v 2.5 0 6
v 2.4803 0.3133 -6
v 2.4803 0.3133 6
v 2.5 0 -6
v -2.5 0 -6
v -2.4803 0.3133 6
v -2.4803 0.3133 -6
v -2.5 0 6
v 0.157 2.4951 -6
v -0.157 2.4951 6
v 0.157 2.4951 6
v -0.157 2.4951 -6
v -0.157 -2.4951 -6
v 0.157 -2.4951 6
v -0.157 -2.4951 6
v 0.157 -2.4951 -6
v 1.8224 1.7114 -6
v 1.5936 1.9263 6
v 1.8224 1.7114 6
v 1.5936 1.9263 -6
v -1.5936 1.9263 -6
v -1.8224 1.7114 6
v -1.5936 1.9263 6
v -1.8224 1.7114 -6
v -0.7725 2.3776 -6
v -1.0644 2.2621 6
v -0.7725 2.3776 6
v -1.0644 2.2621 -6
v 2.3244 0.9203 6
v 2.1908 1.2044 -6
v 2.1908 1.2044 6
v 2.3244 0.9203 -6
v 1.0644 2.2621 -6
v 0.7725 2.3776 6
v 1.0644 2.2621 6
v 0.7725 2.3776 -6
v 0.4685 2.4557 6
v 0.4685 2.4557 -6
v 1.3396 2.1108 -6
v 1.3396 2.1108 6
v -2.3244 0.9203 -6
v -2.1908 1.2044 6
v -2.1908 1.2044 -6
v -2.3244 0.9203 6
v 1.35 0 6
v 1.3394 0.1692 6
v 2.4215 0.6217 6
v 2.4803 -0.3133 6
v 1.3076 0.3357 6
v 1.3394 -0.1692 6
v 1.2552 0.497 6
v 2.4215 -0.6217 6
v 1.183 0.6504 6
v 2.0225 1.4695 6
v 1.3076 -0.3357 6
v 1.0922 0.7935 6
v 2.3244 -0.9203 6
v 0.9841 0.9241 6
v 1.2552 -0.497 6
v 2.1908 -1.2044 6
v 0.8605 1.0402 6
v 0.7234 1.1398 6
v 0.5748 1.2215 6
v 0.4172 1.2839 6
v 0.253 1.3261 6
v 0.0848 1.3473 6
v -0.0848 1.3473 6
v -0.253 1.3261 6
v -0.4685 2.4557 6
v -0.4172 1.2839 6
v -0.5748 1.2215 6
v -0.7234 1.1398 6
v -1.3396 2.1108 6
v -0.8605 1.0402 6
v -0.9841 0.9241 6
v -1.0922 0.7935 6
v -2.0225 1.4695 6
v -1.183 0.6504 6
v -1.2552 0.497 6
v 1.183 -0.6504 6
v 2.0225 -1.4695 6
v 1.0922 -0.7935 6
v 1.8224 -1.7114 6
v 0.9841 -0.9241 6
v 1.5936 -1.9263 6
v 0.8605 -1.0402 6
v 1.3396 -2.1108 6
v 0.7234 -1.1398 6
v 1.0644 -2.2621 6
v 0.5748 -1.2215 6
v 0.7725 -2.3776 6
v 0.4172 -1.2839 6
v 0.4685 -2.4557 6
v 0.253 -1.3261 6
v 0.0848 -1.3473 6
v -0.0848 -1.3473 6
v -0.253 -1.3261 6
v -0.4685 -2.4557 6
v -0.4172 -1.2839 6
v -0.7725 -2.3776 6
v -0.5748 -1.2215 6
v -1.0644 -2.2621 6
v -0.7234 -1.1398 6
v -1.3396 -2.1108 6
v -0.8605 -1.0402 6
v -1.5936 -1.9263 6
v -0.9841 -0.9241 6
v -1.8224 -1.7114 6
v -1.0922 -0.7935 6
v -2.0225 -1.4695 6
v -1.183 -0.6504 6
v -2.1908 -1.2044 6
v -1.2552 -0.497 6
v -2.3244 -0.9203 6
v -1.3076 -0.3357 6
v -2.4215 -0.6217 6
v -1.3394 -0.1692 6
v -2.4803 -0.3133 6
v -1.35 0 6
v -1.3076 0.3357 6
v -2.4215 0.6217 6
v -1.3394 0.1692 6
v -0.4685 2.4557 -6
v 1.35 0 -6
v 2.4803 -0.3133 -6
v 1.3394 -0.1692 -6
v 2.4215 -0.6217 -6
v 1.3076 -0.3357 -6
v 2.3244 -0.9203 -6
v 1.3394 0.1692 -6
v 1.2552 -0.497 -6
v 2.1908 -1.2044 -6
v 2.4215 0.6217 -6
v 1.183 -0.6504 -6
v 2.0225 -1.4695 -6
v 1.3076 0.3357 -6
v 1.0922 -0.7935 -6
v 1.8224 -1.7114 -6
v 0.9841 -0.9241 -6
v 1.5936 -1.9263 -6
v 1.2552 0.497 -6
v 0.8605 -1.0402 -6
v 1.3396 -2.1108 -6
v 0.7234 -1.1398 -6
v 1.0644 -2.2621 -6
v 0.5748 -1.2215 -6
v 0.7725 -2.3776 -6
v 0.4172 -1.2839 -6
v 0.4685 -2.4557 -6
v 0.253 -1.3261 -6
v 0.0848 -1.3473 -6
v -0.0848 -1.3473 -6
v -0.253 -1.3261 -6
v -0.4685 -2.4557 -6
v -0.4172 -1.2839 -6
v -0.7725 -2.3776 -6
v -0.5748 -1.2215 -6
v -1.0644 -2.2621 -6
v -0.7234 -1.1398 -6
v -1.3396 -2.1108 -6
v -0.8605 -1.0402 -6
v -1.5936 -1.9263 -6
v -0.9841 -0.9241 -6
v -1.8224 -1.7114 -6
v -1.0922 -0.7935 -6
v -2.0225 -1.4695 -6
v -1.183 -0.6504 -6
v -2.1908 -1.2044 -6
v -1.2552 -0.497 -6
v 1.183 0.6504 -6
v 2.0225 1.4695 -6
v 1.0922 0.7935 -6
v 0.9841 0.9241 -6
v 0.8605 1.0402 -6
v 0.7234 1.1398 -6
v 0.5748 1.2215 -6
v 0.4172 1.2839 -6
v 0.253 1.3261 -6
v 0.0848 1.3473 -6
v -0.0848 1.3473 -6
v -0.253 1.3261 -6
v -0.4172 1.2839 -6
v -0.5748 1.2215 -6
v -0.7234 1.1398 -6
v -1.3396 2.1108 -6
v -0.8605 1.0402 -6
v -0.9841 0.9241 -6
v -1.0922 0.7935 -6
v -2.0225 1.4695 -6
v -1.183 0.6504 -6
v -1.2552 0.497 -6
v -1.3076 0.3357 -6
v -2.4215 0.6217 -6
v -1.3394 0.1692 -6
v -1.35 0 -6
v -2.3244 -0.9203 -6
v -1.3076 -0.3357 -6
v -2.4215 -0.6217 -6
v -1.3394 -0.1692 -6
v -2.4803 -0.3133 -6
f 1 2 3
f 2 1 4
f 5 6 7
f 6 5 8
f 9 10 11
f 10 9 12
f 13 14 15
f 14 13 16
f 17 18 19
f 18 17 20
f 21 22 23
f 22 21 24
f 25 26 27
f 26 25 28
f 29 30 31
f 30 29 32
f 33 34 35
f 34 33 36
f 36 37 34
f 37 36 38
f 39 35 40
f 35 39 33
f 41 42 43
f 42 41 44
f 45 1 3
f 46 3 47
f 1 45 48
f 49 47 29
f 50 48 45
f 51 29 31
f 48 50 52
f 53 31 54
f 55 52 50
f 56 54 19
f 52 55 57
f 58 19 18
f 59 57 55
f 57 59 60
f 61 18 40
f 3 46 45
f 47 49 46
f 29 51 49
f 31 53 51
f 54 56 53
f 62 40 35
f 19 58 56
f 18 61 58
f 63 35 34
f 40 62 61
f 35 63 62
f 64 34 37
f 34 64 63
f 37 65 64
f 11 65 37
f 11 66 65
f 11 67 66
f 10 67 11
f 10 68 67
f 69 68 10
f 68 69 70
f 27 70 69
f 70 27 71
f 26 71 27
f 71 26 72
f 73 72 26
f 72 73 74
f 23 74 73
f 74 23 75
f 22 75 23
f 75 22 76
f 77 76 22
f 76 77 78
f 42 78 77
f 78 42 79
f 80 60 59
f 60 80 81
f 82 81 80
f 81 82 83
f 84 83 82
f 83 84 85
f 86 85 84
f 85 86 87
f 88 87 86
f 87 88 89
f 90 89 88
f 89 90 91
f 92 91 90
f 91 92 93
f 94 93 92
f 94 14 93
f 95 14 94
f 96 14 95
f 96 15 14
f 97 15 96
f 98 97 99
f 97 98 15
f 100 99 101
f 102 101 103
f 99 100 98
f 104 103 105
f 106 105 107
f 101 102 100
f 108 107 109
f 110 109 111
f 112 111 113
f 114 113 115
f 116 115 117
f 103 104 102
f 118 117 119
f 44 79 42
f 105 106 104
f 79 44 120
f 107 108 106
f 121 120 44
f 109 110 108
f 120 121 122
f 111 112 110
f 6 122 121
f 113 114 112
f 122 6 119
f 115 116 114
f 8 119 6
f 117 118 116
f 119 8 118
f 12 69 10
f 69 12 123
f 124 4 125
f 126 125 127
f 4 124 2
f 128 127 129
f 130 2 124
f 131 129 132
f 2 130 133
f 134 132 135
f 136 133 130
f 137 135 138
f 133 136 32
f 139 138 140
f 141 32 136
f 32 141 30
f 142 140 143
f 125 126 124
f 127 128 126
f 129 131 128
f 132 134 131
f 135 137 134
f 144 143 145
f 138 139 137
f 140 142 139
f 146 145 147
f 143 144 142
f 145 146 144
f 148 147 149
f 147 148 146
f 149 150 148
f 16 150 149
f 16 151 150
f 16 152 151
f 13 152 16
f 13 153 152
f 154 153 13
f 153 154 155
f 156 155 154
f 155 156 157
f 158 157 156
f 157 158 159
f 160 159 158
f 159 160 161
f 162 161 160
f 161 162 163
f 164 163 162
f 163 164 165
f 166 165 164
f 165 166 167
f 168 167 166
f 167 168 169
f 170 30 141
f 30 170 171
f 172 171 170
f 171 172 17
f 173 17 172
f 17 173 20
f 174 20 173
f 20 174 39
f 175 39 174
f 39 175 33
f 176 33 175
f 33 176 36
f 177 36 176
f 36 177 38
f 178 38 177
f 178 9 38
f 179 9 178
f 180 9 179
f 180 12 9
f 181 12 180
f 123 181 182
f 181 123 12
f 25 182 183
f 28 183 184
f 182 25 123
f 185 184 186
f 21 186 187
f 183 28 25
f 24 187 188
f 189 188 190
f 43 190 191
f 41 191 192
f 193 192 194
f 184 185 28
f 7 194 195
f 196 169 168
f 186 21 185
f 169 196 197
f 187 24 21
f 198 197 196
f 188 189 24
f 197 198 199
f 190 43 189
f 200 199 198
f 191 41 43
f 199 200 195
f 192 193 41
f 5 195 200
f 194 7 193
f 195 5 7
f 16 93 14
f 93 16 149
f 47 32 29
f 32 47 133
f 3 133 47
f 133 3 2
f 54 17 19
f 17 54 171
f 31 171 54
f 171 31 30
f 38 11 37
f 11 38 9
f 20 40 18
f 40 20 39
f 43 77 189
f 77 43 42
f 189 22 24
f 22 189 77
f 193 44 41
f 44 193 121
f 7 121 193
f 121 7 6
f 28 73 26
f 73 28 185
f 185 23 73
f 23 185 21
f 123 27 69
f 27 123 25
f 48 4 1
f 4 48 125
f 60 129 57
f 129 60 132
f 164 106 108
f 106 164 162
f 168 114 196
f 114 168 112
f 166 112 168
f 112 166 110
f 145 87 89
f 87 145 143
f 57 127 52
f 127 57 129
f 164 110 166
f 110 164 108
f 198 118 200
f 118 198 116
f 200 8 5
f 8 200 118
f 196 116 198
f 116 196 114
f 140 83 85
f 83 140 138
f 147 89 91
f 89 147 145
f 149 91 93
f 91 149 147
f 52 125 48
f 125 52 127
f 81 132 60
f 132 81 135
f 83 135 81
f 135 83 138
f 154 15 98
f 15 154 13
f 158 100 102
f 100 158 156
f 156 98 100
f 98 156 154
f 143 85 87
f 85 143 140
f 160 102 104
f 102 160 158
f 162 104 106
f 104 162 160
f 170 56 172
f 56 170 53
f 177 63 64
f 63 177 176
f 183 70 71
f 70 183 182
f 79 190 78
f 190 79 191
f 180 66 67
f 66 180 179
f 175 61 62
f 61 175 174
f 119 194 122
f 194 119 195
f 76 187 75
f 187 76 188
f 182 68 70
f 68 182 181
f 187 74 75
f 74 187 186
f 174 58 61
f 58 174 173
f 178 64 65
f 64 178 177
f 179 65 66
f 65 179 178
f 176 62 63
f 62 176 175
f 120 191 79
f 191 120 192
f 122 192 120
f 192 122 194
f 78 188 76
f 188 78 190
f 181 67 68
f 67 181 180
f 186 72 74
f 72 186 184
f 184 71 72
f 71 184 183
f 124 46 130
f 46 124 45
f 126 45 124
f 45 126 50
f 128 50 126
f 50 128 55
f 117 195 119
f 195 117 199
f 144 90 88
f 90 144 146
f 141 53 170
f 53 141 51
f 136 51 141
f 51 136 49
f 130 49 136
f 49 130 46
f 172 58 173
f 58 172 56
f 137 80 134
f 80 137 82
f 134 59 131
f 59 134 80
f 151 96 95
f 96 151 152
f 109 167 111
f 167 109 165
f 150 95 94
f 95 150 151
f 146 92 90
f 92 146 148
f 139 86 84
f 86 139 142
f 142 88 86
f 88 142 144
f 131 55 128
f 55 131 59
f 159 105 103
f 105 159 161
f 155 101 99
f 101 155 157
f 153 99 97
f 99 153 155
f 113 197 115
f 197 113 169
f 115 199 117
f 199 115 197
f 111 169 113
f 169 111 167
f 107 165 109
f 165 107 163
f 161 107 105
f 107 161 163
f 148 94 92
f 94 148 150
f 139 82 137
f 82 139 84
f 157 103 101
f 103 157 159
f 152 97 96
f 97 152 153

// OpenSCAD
$fn = 50;


difference() {
	union() {
		translate(v = [0, 0, -6.0000000000]) {
			cylinder(h = 12, r = 2.5000000000);
		}
	}
	union() {
		translate(v = [0, 0, -100.0000000000]) {
			cylinder(h = 200, r = 1.3500000000);
		}
	}
}
